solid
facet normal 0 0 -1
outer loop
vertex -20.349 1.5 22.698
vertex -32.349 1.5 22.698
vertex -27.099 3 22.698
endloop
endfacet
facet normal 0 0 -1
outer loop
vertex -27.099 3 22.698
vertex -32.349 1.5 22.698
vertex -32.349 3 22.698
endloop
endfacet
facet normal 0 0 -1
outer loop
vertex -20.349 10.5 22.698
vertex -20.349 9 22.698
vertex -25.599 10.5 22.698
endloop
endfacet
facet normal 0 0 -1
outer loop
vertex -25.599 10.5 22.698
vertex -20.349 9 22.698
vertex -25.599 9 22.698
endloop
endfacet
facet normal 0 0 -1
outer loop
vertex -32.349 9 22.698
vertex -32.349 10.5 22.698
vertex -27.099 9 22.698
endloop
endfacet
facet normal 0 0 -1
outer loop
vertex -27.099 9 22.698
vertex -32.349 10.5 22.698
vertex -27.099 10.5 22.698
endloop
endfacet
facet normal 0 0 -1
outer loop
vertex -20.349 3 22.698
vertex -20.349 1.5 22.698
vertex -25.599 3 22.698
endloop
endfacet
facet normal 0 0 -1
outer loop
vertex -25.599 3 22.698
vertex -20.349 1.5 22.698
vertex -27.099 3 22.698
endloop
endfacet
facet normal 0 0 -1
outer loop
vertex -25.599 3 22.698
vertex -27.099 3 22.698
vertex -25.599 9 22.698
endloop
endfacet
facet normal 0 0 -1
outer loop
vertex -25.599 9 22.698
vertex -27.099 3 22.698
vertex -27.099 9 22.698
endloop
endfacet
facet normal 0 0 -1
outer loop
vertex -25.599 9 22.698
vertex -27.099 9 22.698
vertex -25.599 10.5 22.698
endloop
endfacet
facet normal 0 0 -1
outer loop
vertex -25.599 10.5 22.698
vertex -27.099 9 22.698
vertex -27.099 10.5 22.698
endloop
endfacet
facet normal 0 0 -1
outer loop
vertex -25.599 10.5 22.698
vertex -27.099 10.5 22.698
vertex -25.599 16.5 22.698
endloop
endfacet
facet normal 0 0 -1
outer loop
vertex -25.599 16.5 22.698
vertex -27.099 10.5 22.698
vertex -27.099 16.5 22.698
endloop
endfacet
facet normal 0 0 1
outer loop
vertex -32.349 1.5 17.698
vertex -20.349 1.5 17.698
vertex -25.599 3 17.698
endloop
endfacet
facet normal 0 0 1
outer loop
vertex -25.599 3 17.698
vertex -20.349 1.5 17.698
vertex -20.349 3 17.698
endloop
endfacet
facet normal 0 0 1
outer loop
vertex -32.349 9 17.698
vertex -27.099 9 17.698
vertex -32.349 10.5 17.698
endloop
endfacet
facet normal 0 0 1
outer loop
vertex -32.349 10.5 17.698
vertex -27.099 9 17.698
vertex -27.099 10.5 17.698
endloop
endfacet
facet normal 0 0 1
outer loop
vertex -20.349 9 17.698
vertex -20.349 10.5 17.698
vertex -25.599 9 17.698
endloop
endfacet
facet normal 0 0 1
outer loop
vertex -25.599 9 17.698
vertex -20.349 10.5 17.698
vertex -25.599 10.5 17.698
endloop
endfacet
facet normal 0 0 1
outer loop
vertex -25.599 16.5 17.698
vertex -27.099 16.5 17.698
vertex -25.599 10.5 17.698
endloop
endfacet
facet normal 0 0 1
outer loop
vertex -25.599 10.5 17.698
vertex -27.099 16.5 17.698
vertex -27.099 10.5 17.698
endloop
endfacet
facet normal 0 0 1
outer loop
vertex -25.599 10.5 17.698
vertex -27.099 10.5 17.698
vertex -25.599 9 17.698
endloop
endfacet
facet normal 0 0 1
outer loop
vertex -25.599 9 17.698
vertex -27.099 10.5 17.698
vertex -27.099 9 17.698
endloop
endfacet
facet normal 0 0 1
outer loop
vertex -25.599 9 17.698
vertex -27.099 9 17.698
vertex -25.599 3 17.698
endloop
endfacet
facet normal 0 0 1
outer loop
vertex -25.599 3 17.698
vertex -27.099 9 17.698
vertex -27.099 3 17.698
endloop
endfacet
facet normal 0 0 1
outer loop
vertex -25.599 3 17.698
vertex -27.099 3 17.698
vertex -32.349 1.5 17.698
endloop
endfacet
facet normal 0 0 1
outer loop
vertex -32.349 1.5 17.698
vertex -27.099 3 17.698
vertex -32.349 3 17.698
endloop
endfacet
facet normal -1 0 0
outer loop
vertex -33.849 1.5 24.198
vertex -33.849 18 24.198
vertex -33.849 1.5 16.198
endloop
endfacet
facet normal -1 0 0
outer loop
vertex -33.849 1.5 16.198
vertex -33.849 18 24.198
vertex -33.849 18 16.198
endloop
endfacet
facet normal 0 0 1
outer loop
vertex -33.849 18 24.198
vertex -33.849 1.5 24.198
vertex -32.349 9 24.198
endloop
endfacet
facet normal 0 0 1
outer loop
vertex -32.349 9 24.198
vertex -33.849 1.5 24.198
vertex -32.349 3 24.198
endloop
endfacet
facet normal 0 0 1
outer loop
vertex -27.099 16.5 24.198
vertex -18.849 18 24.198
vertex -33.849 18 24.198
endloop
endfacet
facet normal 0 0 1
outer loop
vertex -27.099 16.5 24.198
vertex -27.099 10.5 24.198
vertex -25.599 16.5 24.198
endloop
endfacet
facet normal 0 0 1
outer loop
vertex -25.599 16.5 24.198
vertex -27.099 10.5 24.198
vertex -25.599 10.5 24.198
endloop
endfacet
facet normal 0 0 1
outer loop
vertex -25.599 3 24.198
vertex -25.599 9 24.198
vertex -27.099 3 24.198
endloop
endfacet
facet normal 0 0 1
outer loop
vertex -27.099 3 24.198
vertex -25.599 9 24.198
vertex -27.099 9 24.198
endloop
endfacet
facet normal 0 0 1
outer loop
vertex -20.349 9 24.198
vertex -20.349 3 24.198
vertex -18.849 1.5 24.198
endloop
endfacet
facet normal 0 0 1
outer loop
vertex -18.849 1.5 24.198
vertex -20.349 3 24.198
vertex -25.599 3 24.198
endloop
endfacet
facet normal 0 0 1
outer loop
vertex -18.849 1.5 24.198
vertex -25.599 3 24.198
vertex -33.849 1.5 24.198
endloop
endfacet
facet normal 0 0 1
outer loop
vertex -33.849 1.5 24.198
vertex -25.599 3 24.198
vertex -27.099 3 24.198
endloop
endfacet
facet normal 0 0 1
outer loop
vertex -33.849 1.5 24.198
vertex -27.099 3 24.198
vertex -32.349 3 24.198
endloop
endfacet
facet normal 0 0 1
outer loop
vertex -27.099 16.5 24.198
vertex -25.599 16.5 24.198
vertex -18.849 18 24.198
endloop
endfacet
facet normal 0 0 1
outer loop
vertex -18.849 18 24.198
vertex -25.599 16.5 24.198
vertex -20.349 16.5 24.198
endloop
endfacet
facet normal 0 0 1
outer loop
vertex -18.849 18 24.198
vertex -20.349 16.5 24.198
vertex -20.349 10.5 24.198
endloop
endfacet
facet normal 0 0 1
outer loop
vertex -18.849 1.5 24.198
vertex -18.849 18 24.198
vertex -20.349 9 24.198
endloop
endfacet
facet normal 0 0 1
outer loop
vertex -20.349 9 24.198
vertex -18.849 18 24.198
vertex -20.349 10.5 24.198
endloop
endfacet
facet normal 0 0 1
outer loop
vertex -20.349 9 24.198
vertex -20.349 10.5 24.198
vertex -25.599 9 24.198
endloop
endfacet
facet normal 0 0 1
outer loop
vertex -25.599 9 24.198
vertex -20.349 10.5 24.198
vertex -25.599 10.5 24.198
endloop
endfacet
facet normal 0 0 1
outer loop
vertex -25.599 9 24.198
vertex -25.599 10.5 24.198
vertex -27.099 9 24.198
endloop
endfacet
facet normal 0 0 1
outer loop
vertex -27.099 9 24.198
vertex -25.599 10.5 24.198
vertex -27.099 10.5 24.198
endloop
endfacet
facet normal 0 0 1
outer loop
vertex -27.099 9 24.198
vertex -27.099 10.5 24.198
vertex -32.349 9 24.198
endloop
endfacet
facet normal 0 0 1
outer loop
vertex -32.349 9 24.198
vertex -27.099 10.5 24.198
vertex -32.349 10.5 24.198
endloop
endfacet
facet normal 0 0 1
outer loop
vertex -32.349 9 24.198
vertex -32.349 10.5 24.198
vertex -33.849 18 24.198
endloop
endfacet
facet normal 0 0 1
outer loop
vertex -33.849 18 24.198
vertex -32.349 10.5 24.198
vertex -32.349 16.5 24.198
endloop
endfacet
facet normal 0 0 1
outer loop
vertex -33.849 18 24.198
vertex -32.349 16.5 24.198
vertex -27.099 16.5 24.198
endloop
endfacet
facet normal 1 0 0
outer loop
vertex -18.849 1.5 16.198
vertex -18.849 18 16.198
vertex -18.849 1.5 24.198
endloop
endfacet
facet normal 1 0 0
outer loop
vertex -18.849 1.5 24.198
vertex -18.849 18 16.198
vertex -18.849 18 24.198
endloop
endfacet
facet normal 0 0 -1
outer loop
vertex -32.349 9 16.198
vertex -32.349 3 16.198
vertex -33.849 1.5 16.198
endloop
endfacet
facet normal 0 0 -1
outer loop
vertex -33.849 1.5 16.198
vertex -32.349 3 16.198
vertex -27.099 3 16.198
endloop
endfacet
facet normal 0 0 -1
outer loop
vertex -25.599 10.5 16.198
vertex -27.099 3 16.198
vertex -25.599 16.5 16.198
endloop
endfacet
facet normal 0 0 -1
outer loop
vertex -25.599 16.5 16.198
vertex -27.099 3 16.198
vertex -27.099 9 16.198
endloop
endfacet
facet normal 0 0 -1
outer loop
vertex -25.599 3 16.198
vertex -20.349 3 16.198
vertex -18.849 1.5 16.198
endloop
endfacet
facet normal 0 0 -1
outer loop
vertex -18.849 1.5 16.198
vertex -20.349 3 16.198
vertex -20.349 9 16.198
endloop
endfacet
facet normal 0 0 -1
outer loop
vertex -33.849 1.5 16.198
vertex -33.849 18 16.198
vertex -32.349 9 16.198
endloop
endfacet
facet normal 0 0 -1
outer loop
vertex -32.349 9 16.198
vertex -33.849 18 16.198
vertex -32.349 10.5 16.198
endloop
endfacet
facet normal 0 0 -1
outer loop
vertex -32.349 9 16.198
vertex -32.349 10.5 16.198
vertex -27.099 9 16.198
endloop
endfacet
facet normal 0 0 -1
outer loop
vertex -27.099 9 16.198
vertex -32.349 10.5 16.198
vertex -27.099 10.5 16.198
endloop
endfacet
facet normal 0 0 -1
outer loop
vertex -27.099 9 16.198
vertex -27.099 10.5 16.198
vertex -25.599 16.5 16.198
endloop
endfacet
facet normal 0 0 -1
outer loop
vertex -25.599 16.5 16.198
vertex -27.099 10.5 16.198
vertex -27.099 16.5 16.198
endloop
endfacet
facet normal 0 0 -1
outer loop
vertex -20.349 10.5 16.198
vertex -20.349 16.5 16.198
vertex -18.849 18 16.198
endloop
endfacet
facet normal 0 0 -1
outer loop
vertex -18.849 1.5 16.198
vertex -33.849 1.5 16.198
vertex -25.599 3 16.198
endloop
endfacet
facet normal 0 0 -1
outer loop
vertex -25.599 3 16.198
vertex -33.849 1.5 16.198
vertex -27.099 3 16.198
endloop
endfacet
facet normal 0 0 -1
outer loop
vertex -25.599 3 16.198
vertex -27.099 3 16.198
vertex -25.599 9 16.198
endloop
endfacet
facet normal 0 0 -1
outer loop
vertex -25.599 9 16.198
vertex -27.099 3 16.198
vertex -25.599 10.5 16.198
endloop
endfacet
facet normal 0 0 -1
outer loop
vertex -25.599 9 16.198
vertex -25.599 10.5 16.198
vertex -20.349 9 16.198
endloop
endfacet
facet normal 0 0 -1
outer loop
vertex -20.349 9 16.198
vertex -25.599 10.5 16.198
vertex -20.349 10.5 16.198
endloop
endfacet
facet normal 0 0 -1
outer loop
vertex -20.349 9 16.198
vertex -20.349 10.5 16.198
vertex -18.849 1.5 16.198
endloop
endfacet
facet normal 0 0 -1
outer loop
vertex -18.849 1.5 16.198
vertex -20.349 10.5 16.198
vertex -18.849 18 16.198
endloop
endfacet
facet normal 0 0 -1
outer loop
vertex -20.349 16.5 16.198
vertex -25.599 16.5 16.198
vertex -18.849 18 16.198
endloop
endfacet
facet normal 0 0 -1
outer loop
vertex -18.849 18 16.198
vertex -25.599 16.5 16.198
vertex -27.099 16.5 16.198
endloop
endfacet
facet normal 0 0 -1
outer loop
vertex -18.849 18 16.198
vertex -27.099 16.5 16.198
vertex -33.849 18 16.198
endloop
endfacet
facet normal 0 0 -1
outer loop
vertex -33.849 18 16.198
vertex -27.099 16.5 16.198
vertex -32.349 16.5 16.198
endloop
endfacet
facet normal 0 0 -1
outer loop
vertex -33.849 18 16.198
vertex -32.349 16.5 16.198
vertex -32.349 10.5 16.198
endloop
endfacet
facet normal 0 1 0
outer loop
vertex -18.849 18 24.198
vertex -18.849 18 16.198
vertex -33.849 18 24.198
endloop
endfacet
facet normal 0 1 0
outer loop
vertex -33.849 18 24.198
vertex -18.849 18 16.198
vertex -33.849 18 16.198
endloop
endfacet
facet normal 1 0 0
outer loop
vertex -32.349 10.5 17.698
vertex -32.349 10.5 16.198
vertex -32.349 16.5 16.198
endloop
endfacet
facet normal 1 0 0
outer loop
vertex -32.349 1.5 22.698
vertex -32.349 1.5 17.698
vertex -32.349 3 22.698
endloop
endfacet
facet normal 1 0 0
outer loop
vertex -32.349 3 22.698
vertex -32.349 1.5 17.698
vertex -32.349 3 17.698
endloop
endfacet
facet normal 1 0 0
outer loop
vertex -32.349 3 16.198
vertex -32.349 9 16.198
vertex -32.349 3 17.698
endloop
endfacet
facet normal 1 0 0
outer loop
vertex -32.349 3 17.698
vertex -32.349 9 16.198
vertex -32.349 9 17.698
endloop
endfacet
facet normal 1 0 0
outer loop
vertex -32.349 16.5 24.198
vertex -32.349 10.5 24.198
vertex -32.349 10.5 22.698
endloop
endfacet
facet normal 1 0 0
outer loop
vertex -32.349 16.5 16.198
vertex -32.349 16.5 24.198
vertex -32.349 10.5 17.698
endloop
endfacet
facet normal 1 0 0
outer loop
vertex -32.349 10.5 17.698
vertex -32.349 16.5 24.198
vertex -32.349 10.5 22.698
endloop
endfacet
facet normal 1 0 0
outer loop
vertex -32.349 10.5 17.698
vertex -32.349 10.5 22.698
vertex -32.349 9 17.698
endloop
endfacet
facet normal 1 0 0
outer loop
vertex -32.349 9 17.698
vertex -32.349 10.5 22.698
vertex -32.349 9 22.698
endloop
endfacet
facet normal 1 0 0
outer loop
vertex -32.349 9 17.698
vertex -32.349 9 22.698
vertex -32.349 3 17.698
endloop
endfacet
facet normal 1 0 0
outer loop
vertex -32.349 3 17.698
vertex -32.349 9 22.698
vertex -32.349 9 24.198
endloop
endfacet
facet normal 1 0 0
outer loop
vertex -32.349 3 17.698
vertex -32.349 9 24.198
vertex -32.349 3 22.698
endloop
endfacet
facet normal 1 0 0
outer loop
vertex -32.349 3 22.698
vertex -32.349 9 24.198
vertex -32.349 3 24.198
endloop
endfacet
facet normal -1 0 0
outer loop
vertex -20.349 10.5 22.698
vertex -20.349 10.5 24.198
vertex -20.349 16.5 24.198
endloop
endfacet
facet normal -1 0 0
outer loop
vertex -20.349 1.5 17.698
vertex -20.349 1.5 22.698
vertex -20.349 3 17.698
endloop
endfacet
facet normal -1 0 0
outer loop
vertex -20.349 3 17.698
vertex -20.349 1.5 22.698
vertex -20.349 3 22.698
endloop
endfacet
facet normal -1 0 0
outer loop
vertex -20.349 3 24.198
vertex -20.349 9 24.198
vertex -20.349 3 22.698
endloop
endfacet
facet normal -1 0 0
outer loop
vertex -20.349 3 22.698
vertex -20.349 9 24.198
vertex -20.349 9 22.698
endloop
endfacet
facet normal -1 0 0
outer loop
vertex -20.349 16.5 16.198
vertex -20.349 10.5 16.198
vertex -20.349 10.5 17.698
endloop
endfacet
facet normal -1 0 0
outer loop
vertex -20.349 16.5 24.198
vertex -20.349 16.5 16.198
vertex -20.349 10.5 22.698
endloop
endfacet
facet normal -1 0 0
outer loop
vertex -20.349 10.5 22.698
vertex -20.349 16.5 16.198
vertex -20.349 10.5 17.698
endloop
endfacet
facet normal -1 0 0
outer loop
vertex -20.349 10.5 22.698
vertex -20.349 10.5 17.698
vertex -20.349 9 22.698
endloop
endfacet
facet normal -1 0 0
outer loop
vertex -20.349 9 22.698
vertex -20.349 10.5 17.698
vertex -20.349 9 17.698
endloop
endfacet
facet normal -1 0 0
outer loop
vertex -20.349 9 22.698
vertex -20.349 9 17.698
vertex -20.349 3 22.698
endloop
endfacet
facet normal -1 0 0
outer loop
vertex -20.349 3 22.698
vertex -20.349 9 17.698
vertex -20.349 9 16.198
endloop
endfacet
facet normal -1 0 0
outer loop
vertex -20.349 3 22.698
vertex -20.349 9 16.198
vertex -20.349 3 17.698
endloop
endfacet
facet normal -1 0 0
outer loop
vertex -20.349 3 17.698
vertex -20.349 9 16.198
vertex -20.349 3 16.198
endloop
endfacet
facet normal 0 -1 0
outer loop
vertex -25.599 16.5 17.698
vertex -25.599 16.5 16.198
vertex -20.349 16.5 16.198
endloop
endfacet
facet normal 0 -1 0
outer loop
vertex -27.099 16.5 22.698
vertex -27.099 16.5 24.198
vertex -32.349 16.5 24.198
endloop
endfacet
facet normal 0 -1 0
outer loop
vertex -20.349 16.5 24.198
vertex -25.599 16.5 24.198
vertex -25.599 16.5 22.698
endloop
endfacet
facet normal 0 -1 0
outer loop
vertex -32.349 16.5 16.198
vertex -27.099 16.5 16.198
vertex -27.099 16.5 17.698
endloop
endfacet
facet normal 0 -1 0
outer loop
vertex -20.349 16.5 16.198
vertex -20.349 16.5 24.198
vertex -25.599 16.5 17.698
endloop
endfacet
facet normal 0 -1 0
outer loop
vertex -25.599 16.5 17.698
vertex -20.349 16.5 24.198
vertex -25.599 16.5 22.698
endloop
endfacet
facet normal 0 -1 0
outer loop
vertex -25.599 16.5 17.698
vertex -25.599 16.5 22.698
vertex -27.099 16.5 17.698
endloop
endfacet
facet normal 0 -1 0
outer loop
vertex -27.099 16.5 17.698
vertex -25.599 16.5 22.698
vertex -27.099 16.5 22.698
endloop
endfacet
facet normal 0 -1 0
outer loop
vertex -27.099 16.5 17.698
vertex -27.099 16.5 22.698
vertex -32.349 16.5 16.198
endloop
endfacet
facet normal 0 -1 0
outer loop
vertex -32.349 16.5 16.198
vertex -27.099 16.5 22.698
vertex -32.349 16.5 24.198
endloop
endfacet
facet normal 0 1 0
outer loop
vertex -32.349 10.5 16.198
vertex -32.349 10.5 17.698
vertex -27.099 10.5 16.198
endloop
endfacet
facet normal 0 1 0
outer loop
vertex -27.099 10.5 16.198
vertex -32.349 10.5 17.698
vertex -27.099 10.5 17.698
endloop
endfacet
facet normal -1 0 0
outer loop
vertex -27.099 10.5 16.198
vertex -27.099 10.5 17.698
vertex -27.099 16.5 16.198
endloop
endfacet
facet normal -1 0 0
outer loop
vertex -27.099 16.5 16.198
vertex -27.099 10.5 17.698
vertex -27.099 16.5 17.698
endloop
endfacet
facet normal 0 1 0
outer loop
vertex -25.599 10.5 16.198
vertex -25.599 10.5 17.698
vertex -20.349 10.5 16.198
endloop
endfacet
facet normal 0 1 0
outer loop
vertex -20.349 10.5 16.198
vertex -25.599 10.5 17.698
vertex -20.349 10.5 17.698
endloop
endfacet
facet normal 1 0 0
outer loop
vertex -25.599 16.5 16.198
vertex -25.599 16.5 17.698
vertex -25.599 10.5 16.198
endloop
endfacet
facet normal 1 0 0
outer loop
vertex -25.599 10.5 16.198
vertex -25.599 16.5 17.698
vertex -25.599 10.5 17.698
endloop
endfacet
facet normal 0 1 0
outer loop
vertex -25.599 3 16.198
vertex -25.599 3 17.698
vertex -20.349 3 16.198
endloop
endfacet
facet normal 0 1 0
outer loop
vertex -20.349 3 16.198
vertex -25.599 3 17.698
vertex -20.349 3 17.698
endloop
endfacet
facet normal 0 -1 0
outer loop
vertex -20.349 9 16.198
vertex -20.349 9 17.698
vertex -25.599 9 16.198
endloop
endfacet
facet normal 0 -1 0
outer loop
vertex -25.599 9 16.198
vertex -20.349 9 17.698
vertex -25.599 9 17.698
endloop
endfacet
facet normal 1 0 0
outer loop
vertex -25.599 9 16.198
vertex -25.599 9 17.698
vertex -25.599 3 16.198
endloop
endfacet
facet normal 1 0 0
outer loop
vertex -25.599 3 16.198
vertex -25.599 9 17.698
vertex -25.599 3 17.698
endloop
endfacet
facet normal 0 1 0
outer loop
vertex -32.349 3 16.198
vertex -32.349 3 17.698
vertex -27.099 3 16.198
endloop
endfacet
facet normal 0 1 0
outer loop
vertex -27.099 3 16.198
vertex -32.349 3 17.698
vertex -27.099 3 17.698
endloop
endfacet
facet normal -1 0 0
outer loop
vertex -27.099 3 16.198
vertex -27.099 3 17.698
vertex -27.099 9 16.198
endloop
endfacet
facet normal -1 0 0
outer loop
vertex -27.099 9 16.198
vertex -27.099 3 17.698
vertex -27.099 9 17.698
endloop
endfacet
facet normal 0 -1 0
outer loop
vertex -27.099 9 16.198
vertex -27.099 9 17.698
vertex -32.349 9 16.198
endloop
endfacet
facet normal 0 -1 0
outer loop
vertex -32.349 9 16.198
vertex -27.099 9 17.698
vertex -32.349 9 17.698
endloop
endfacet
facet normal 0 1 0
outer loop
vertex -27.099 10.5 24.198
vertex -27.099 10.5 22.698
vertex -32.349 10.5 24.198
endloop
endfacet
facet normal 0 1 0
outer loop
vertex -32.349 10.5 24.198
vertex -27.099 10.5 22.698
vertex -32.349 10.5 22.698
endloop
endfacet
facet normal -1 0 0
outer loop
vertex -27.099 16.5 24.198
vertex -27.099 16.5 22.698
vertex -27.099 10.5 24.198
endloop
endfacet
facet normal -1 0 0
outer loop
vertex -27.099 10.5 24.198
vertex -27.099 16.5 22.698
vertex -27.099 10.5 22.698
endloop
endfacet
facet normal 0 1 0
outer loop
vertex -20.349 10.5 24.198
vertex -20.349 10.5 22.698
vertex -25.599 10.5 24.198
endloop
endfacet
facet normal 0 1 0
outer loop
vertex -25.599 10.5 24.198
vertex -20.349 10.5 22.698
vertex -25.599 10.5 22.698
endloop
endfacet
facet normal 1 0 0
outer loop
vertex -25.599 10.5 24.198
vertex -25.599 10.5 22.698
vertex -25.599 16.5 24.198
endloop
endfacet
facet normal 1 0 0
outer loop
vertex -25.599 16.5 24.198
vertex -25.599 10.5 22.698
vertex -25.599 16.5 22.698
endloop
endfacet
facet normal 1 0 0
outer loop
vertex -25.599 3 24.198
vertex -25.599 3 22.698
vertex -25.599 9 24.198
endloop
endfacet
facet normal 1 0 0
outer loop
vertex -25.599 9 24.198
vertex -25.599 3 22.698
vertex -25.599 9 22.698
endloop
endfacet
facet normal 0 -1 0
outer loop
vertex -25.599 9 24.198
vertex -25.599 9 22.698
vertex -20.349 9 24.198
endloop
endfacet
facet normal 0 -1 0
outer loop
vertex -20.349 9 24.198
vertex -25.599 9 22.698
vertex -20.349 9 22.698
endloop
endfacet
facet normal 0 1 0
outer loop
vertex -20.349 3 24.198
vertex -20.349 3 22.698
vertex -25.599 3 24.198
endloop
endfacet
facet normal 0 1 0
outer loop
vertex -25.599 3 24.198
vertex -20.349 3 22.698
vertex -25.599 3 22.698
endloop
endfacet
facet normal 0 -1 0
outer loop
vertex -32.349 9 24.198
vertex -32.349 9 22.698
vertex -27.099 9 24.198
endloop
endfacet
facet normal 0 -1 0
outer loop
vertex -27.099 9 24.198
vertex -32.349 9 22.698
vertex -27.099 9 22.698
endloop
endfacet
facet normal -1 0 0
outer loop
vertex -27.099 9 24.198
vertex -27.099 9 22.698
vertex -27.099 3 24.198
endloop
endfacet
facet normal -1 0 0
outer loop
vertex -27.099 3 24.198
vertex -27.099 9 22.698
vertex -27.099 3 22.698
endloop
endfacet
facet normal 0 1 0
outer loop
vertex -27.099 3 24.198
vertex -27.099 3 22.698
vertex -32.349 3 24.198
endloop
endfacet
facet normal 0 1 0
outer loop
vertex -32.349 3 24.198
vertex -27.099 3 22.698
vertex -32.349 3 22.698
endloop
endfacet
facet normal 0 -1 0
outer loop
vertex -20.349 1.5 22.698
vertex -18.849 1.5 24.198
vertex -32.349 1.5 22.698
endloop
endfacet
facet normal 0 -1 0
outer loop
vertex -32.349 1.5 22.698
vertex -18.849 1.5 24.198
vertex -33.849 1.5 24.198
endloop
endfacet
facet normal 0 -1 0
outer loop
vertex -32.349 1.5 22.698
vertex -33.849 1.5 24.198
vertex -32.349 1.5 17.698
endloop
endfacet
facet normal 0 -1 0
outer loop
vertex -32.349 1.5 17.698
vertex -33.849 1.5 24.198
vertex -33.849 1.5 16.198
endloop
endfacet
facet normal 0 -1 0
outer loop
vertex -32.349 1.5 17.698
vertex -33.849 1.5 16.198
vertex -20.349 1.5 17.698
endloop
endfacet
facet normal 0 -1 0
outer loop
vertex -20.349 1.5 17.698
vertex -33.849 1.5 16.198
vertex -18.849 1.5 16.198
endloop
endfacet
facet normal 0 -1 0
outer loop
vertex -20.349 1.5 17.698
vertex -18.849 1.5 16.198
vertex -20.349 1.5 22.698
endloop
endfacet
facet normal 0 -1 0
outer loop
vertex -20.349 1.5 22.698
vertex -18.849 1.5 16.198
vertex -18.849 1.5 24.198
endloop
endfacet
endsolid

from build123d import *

# Parameters (mm, degrees)
SKETCH1_W           = 15
SKETCH1_H           = 8
BOSS_EXTRUDE2_DEPTH = 18
SKETCH2_W           = 12
SKETCH2_H           = 5
CUT_EXTRUDE1_DEPTH  = 16.5
SKETCH3_W           = 5.25
SKETCH3_H           = 6
CUT_EXTRUDE2_DEPTH  = 8
SKETCH5_W           = 5
SKETCH5_H           = 1.5
CUT_EXTRUDE3_DEPTH  = 15
SKETCH4_W           = 5.25
SKETCH4_H           = 1.5
CUT_EXTRUDE4_DEPTH  = 15
SKETCH6_W           = 15
SKETCH6_H           = 8
CUT_EXTRUDE5_DEPTH  = 1.5


with BuildPart() as part:
    # Sketch1 → Boss-Extrude2 (new body)
    with BuildSketch(Plane(origin=(0, 0, 0), x_dir=(1, 0, 0), z_dir=(0, 1, 0))):
        with Locations((-26.34923581, -20.1983027)):
            Rectangle(SKETCH1_W, SKETCH1_H)
    extrude(amount=BOSS_EXTRUDE2_DEPTH)

    # Sketch2 → Cut-Extrude1 (cut)
    with BuildSketch(Plane(origin=(0, 0, 0), x_dir=(-1, 0, 0), z_dir=(0, -1, 0))):
        with Locations((26.34923581, -20.1983027)):
            Rectangle(SKETCH2_W, SKETCH2_H)
    extrude(amount=-CUT_EXTRUDE1_DEPTH, mode=Mode.SUBTRACT)

    # Sketch3 → Cut-Extrude2 (cut)
    with BuildSketch(Plane.XY.offset(24.1983027)):
        with Locations((-29.72423581, 13.5)):
            Rectangle(SKETCH3_W, SKETCH3_H)
        with Locations((-22.97423581, 13.5)):
            Rectangle(SKETCH3_W, SKETCH3_H)
        with Locations((-22.97423581, 6)):
            Rectangle(SKETCH3_W, SKETCH3_H)
        with Locations((-29.72423581, 6)):
            Rectangle(SKETCH3_W, SKETCH3_H)
    extrude(amount=-CUT_EXTRUDE2_DEPTH, mode=Mode.SUBTRACT)

    # Sketch5 → Cut-Extrude3 (cut)
    with BuildSketch(Plane(origin=(-18.84923581, 0, 0), x_dir=(0, 0, -1), z_dir=(1, 0, 0))):
        with Locations((-20.1983027, 0.75)):
            Rectangle(SKETCH5_W, SKETCH5_H)
    extrude(amount=-CUT_EXTRUDE3_DEPTH, mode=Mode.SUBTRACT)

    # Sketch4 → Cut-Extrude4 (cut)
    with BuildSketch(Plane.XY.offset(24.1983027)):
        with Locations((-29.72423581, 0.75)):
            Rectangle(SKETCH4_W, SKETCH4_H)
        with Locations((-22.97423581, 0.75)):
            Rectangle(SKETCH4_W, SKETCH4_H)
    extrude(amount=-CUT_EXTRUDE4_DEPTH, mode=Mode.SUBTRACT)

    # Sketch6 → Cut-Extrude5 (cut)
    with BuildSketch(Plane.XZ):
        with Locations((-26.34923581, 20.1983027)):
            Rectangle(SKETCH6_W, SKETCH6_H)
    extrude(amount=-CUT_EXTRUDE5_DEPTH, mode=Mode.SUBTRACT)


solid = part.part
